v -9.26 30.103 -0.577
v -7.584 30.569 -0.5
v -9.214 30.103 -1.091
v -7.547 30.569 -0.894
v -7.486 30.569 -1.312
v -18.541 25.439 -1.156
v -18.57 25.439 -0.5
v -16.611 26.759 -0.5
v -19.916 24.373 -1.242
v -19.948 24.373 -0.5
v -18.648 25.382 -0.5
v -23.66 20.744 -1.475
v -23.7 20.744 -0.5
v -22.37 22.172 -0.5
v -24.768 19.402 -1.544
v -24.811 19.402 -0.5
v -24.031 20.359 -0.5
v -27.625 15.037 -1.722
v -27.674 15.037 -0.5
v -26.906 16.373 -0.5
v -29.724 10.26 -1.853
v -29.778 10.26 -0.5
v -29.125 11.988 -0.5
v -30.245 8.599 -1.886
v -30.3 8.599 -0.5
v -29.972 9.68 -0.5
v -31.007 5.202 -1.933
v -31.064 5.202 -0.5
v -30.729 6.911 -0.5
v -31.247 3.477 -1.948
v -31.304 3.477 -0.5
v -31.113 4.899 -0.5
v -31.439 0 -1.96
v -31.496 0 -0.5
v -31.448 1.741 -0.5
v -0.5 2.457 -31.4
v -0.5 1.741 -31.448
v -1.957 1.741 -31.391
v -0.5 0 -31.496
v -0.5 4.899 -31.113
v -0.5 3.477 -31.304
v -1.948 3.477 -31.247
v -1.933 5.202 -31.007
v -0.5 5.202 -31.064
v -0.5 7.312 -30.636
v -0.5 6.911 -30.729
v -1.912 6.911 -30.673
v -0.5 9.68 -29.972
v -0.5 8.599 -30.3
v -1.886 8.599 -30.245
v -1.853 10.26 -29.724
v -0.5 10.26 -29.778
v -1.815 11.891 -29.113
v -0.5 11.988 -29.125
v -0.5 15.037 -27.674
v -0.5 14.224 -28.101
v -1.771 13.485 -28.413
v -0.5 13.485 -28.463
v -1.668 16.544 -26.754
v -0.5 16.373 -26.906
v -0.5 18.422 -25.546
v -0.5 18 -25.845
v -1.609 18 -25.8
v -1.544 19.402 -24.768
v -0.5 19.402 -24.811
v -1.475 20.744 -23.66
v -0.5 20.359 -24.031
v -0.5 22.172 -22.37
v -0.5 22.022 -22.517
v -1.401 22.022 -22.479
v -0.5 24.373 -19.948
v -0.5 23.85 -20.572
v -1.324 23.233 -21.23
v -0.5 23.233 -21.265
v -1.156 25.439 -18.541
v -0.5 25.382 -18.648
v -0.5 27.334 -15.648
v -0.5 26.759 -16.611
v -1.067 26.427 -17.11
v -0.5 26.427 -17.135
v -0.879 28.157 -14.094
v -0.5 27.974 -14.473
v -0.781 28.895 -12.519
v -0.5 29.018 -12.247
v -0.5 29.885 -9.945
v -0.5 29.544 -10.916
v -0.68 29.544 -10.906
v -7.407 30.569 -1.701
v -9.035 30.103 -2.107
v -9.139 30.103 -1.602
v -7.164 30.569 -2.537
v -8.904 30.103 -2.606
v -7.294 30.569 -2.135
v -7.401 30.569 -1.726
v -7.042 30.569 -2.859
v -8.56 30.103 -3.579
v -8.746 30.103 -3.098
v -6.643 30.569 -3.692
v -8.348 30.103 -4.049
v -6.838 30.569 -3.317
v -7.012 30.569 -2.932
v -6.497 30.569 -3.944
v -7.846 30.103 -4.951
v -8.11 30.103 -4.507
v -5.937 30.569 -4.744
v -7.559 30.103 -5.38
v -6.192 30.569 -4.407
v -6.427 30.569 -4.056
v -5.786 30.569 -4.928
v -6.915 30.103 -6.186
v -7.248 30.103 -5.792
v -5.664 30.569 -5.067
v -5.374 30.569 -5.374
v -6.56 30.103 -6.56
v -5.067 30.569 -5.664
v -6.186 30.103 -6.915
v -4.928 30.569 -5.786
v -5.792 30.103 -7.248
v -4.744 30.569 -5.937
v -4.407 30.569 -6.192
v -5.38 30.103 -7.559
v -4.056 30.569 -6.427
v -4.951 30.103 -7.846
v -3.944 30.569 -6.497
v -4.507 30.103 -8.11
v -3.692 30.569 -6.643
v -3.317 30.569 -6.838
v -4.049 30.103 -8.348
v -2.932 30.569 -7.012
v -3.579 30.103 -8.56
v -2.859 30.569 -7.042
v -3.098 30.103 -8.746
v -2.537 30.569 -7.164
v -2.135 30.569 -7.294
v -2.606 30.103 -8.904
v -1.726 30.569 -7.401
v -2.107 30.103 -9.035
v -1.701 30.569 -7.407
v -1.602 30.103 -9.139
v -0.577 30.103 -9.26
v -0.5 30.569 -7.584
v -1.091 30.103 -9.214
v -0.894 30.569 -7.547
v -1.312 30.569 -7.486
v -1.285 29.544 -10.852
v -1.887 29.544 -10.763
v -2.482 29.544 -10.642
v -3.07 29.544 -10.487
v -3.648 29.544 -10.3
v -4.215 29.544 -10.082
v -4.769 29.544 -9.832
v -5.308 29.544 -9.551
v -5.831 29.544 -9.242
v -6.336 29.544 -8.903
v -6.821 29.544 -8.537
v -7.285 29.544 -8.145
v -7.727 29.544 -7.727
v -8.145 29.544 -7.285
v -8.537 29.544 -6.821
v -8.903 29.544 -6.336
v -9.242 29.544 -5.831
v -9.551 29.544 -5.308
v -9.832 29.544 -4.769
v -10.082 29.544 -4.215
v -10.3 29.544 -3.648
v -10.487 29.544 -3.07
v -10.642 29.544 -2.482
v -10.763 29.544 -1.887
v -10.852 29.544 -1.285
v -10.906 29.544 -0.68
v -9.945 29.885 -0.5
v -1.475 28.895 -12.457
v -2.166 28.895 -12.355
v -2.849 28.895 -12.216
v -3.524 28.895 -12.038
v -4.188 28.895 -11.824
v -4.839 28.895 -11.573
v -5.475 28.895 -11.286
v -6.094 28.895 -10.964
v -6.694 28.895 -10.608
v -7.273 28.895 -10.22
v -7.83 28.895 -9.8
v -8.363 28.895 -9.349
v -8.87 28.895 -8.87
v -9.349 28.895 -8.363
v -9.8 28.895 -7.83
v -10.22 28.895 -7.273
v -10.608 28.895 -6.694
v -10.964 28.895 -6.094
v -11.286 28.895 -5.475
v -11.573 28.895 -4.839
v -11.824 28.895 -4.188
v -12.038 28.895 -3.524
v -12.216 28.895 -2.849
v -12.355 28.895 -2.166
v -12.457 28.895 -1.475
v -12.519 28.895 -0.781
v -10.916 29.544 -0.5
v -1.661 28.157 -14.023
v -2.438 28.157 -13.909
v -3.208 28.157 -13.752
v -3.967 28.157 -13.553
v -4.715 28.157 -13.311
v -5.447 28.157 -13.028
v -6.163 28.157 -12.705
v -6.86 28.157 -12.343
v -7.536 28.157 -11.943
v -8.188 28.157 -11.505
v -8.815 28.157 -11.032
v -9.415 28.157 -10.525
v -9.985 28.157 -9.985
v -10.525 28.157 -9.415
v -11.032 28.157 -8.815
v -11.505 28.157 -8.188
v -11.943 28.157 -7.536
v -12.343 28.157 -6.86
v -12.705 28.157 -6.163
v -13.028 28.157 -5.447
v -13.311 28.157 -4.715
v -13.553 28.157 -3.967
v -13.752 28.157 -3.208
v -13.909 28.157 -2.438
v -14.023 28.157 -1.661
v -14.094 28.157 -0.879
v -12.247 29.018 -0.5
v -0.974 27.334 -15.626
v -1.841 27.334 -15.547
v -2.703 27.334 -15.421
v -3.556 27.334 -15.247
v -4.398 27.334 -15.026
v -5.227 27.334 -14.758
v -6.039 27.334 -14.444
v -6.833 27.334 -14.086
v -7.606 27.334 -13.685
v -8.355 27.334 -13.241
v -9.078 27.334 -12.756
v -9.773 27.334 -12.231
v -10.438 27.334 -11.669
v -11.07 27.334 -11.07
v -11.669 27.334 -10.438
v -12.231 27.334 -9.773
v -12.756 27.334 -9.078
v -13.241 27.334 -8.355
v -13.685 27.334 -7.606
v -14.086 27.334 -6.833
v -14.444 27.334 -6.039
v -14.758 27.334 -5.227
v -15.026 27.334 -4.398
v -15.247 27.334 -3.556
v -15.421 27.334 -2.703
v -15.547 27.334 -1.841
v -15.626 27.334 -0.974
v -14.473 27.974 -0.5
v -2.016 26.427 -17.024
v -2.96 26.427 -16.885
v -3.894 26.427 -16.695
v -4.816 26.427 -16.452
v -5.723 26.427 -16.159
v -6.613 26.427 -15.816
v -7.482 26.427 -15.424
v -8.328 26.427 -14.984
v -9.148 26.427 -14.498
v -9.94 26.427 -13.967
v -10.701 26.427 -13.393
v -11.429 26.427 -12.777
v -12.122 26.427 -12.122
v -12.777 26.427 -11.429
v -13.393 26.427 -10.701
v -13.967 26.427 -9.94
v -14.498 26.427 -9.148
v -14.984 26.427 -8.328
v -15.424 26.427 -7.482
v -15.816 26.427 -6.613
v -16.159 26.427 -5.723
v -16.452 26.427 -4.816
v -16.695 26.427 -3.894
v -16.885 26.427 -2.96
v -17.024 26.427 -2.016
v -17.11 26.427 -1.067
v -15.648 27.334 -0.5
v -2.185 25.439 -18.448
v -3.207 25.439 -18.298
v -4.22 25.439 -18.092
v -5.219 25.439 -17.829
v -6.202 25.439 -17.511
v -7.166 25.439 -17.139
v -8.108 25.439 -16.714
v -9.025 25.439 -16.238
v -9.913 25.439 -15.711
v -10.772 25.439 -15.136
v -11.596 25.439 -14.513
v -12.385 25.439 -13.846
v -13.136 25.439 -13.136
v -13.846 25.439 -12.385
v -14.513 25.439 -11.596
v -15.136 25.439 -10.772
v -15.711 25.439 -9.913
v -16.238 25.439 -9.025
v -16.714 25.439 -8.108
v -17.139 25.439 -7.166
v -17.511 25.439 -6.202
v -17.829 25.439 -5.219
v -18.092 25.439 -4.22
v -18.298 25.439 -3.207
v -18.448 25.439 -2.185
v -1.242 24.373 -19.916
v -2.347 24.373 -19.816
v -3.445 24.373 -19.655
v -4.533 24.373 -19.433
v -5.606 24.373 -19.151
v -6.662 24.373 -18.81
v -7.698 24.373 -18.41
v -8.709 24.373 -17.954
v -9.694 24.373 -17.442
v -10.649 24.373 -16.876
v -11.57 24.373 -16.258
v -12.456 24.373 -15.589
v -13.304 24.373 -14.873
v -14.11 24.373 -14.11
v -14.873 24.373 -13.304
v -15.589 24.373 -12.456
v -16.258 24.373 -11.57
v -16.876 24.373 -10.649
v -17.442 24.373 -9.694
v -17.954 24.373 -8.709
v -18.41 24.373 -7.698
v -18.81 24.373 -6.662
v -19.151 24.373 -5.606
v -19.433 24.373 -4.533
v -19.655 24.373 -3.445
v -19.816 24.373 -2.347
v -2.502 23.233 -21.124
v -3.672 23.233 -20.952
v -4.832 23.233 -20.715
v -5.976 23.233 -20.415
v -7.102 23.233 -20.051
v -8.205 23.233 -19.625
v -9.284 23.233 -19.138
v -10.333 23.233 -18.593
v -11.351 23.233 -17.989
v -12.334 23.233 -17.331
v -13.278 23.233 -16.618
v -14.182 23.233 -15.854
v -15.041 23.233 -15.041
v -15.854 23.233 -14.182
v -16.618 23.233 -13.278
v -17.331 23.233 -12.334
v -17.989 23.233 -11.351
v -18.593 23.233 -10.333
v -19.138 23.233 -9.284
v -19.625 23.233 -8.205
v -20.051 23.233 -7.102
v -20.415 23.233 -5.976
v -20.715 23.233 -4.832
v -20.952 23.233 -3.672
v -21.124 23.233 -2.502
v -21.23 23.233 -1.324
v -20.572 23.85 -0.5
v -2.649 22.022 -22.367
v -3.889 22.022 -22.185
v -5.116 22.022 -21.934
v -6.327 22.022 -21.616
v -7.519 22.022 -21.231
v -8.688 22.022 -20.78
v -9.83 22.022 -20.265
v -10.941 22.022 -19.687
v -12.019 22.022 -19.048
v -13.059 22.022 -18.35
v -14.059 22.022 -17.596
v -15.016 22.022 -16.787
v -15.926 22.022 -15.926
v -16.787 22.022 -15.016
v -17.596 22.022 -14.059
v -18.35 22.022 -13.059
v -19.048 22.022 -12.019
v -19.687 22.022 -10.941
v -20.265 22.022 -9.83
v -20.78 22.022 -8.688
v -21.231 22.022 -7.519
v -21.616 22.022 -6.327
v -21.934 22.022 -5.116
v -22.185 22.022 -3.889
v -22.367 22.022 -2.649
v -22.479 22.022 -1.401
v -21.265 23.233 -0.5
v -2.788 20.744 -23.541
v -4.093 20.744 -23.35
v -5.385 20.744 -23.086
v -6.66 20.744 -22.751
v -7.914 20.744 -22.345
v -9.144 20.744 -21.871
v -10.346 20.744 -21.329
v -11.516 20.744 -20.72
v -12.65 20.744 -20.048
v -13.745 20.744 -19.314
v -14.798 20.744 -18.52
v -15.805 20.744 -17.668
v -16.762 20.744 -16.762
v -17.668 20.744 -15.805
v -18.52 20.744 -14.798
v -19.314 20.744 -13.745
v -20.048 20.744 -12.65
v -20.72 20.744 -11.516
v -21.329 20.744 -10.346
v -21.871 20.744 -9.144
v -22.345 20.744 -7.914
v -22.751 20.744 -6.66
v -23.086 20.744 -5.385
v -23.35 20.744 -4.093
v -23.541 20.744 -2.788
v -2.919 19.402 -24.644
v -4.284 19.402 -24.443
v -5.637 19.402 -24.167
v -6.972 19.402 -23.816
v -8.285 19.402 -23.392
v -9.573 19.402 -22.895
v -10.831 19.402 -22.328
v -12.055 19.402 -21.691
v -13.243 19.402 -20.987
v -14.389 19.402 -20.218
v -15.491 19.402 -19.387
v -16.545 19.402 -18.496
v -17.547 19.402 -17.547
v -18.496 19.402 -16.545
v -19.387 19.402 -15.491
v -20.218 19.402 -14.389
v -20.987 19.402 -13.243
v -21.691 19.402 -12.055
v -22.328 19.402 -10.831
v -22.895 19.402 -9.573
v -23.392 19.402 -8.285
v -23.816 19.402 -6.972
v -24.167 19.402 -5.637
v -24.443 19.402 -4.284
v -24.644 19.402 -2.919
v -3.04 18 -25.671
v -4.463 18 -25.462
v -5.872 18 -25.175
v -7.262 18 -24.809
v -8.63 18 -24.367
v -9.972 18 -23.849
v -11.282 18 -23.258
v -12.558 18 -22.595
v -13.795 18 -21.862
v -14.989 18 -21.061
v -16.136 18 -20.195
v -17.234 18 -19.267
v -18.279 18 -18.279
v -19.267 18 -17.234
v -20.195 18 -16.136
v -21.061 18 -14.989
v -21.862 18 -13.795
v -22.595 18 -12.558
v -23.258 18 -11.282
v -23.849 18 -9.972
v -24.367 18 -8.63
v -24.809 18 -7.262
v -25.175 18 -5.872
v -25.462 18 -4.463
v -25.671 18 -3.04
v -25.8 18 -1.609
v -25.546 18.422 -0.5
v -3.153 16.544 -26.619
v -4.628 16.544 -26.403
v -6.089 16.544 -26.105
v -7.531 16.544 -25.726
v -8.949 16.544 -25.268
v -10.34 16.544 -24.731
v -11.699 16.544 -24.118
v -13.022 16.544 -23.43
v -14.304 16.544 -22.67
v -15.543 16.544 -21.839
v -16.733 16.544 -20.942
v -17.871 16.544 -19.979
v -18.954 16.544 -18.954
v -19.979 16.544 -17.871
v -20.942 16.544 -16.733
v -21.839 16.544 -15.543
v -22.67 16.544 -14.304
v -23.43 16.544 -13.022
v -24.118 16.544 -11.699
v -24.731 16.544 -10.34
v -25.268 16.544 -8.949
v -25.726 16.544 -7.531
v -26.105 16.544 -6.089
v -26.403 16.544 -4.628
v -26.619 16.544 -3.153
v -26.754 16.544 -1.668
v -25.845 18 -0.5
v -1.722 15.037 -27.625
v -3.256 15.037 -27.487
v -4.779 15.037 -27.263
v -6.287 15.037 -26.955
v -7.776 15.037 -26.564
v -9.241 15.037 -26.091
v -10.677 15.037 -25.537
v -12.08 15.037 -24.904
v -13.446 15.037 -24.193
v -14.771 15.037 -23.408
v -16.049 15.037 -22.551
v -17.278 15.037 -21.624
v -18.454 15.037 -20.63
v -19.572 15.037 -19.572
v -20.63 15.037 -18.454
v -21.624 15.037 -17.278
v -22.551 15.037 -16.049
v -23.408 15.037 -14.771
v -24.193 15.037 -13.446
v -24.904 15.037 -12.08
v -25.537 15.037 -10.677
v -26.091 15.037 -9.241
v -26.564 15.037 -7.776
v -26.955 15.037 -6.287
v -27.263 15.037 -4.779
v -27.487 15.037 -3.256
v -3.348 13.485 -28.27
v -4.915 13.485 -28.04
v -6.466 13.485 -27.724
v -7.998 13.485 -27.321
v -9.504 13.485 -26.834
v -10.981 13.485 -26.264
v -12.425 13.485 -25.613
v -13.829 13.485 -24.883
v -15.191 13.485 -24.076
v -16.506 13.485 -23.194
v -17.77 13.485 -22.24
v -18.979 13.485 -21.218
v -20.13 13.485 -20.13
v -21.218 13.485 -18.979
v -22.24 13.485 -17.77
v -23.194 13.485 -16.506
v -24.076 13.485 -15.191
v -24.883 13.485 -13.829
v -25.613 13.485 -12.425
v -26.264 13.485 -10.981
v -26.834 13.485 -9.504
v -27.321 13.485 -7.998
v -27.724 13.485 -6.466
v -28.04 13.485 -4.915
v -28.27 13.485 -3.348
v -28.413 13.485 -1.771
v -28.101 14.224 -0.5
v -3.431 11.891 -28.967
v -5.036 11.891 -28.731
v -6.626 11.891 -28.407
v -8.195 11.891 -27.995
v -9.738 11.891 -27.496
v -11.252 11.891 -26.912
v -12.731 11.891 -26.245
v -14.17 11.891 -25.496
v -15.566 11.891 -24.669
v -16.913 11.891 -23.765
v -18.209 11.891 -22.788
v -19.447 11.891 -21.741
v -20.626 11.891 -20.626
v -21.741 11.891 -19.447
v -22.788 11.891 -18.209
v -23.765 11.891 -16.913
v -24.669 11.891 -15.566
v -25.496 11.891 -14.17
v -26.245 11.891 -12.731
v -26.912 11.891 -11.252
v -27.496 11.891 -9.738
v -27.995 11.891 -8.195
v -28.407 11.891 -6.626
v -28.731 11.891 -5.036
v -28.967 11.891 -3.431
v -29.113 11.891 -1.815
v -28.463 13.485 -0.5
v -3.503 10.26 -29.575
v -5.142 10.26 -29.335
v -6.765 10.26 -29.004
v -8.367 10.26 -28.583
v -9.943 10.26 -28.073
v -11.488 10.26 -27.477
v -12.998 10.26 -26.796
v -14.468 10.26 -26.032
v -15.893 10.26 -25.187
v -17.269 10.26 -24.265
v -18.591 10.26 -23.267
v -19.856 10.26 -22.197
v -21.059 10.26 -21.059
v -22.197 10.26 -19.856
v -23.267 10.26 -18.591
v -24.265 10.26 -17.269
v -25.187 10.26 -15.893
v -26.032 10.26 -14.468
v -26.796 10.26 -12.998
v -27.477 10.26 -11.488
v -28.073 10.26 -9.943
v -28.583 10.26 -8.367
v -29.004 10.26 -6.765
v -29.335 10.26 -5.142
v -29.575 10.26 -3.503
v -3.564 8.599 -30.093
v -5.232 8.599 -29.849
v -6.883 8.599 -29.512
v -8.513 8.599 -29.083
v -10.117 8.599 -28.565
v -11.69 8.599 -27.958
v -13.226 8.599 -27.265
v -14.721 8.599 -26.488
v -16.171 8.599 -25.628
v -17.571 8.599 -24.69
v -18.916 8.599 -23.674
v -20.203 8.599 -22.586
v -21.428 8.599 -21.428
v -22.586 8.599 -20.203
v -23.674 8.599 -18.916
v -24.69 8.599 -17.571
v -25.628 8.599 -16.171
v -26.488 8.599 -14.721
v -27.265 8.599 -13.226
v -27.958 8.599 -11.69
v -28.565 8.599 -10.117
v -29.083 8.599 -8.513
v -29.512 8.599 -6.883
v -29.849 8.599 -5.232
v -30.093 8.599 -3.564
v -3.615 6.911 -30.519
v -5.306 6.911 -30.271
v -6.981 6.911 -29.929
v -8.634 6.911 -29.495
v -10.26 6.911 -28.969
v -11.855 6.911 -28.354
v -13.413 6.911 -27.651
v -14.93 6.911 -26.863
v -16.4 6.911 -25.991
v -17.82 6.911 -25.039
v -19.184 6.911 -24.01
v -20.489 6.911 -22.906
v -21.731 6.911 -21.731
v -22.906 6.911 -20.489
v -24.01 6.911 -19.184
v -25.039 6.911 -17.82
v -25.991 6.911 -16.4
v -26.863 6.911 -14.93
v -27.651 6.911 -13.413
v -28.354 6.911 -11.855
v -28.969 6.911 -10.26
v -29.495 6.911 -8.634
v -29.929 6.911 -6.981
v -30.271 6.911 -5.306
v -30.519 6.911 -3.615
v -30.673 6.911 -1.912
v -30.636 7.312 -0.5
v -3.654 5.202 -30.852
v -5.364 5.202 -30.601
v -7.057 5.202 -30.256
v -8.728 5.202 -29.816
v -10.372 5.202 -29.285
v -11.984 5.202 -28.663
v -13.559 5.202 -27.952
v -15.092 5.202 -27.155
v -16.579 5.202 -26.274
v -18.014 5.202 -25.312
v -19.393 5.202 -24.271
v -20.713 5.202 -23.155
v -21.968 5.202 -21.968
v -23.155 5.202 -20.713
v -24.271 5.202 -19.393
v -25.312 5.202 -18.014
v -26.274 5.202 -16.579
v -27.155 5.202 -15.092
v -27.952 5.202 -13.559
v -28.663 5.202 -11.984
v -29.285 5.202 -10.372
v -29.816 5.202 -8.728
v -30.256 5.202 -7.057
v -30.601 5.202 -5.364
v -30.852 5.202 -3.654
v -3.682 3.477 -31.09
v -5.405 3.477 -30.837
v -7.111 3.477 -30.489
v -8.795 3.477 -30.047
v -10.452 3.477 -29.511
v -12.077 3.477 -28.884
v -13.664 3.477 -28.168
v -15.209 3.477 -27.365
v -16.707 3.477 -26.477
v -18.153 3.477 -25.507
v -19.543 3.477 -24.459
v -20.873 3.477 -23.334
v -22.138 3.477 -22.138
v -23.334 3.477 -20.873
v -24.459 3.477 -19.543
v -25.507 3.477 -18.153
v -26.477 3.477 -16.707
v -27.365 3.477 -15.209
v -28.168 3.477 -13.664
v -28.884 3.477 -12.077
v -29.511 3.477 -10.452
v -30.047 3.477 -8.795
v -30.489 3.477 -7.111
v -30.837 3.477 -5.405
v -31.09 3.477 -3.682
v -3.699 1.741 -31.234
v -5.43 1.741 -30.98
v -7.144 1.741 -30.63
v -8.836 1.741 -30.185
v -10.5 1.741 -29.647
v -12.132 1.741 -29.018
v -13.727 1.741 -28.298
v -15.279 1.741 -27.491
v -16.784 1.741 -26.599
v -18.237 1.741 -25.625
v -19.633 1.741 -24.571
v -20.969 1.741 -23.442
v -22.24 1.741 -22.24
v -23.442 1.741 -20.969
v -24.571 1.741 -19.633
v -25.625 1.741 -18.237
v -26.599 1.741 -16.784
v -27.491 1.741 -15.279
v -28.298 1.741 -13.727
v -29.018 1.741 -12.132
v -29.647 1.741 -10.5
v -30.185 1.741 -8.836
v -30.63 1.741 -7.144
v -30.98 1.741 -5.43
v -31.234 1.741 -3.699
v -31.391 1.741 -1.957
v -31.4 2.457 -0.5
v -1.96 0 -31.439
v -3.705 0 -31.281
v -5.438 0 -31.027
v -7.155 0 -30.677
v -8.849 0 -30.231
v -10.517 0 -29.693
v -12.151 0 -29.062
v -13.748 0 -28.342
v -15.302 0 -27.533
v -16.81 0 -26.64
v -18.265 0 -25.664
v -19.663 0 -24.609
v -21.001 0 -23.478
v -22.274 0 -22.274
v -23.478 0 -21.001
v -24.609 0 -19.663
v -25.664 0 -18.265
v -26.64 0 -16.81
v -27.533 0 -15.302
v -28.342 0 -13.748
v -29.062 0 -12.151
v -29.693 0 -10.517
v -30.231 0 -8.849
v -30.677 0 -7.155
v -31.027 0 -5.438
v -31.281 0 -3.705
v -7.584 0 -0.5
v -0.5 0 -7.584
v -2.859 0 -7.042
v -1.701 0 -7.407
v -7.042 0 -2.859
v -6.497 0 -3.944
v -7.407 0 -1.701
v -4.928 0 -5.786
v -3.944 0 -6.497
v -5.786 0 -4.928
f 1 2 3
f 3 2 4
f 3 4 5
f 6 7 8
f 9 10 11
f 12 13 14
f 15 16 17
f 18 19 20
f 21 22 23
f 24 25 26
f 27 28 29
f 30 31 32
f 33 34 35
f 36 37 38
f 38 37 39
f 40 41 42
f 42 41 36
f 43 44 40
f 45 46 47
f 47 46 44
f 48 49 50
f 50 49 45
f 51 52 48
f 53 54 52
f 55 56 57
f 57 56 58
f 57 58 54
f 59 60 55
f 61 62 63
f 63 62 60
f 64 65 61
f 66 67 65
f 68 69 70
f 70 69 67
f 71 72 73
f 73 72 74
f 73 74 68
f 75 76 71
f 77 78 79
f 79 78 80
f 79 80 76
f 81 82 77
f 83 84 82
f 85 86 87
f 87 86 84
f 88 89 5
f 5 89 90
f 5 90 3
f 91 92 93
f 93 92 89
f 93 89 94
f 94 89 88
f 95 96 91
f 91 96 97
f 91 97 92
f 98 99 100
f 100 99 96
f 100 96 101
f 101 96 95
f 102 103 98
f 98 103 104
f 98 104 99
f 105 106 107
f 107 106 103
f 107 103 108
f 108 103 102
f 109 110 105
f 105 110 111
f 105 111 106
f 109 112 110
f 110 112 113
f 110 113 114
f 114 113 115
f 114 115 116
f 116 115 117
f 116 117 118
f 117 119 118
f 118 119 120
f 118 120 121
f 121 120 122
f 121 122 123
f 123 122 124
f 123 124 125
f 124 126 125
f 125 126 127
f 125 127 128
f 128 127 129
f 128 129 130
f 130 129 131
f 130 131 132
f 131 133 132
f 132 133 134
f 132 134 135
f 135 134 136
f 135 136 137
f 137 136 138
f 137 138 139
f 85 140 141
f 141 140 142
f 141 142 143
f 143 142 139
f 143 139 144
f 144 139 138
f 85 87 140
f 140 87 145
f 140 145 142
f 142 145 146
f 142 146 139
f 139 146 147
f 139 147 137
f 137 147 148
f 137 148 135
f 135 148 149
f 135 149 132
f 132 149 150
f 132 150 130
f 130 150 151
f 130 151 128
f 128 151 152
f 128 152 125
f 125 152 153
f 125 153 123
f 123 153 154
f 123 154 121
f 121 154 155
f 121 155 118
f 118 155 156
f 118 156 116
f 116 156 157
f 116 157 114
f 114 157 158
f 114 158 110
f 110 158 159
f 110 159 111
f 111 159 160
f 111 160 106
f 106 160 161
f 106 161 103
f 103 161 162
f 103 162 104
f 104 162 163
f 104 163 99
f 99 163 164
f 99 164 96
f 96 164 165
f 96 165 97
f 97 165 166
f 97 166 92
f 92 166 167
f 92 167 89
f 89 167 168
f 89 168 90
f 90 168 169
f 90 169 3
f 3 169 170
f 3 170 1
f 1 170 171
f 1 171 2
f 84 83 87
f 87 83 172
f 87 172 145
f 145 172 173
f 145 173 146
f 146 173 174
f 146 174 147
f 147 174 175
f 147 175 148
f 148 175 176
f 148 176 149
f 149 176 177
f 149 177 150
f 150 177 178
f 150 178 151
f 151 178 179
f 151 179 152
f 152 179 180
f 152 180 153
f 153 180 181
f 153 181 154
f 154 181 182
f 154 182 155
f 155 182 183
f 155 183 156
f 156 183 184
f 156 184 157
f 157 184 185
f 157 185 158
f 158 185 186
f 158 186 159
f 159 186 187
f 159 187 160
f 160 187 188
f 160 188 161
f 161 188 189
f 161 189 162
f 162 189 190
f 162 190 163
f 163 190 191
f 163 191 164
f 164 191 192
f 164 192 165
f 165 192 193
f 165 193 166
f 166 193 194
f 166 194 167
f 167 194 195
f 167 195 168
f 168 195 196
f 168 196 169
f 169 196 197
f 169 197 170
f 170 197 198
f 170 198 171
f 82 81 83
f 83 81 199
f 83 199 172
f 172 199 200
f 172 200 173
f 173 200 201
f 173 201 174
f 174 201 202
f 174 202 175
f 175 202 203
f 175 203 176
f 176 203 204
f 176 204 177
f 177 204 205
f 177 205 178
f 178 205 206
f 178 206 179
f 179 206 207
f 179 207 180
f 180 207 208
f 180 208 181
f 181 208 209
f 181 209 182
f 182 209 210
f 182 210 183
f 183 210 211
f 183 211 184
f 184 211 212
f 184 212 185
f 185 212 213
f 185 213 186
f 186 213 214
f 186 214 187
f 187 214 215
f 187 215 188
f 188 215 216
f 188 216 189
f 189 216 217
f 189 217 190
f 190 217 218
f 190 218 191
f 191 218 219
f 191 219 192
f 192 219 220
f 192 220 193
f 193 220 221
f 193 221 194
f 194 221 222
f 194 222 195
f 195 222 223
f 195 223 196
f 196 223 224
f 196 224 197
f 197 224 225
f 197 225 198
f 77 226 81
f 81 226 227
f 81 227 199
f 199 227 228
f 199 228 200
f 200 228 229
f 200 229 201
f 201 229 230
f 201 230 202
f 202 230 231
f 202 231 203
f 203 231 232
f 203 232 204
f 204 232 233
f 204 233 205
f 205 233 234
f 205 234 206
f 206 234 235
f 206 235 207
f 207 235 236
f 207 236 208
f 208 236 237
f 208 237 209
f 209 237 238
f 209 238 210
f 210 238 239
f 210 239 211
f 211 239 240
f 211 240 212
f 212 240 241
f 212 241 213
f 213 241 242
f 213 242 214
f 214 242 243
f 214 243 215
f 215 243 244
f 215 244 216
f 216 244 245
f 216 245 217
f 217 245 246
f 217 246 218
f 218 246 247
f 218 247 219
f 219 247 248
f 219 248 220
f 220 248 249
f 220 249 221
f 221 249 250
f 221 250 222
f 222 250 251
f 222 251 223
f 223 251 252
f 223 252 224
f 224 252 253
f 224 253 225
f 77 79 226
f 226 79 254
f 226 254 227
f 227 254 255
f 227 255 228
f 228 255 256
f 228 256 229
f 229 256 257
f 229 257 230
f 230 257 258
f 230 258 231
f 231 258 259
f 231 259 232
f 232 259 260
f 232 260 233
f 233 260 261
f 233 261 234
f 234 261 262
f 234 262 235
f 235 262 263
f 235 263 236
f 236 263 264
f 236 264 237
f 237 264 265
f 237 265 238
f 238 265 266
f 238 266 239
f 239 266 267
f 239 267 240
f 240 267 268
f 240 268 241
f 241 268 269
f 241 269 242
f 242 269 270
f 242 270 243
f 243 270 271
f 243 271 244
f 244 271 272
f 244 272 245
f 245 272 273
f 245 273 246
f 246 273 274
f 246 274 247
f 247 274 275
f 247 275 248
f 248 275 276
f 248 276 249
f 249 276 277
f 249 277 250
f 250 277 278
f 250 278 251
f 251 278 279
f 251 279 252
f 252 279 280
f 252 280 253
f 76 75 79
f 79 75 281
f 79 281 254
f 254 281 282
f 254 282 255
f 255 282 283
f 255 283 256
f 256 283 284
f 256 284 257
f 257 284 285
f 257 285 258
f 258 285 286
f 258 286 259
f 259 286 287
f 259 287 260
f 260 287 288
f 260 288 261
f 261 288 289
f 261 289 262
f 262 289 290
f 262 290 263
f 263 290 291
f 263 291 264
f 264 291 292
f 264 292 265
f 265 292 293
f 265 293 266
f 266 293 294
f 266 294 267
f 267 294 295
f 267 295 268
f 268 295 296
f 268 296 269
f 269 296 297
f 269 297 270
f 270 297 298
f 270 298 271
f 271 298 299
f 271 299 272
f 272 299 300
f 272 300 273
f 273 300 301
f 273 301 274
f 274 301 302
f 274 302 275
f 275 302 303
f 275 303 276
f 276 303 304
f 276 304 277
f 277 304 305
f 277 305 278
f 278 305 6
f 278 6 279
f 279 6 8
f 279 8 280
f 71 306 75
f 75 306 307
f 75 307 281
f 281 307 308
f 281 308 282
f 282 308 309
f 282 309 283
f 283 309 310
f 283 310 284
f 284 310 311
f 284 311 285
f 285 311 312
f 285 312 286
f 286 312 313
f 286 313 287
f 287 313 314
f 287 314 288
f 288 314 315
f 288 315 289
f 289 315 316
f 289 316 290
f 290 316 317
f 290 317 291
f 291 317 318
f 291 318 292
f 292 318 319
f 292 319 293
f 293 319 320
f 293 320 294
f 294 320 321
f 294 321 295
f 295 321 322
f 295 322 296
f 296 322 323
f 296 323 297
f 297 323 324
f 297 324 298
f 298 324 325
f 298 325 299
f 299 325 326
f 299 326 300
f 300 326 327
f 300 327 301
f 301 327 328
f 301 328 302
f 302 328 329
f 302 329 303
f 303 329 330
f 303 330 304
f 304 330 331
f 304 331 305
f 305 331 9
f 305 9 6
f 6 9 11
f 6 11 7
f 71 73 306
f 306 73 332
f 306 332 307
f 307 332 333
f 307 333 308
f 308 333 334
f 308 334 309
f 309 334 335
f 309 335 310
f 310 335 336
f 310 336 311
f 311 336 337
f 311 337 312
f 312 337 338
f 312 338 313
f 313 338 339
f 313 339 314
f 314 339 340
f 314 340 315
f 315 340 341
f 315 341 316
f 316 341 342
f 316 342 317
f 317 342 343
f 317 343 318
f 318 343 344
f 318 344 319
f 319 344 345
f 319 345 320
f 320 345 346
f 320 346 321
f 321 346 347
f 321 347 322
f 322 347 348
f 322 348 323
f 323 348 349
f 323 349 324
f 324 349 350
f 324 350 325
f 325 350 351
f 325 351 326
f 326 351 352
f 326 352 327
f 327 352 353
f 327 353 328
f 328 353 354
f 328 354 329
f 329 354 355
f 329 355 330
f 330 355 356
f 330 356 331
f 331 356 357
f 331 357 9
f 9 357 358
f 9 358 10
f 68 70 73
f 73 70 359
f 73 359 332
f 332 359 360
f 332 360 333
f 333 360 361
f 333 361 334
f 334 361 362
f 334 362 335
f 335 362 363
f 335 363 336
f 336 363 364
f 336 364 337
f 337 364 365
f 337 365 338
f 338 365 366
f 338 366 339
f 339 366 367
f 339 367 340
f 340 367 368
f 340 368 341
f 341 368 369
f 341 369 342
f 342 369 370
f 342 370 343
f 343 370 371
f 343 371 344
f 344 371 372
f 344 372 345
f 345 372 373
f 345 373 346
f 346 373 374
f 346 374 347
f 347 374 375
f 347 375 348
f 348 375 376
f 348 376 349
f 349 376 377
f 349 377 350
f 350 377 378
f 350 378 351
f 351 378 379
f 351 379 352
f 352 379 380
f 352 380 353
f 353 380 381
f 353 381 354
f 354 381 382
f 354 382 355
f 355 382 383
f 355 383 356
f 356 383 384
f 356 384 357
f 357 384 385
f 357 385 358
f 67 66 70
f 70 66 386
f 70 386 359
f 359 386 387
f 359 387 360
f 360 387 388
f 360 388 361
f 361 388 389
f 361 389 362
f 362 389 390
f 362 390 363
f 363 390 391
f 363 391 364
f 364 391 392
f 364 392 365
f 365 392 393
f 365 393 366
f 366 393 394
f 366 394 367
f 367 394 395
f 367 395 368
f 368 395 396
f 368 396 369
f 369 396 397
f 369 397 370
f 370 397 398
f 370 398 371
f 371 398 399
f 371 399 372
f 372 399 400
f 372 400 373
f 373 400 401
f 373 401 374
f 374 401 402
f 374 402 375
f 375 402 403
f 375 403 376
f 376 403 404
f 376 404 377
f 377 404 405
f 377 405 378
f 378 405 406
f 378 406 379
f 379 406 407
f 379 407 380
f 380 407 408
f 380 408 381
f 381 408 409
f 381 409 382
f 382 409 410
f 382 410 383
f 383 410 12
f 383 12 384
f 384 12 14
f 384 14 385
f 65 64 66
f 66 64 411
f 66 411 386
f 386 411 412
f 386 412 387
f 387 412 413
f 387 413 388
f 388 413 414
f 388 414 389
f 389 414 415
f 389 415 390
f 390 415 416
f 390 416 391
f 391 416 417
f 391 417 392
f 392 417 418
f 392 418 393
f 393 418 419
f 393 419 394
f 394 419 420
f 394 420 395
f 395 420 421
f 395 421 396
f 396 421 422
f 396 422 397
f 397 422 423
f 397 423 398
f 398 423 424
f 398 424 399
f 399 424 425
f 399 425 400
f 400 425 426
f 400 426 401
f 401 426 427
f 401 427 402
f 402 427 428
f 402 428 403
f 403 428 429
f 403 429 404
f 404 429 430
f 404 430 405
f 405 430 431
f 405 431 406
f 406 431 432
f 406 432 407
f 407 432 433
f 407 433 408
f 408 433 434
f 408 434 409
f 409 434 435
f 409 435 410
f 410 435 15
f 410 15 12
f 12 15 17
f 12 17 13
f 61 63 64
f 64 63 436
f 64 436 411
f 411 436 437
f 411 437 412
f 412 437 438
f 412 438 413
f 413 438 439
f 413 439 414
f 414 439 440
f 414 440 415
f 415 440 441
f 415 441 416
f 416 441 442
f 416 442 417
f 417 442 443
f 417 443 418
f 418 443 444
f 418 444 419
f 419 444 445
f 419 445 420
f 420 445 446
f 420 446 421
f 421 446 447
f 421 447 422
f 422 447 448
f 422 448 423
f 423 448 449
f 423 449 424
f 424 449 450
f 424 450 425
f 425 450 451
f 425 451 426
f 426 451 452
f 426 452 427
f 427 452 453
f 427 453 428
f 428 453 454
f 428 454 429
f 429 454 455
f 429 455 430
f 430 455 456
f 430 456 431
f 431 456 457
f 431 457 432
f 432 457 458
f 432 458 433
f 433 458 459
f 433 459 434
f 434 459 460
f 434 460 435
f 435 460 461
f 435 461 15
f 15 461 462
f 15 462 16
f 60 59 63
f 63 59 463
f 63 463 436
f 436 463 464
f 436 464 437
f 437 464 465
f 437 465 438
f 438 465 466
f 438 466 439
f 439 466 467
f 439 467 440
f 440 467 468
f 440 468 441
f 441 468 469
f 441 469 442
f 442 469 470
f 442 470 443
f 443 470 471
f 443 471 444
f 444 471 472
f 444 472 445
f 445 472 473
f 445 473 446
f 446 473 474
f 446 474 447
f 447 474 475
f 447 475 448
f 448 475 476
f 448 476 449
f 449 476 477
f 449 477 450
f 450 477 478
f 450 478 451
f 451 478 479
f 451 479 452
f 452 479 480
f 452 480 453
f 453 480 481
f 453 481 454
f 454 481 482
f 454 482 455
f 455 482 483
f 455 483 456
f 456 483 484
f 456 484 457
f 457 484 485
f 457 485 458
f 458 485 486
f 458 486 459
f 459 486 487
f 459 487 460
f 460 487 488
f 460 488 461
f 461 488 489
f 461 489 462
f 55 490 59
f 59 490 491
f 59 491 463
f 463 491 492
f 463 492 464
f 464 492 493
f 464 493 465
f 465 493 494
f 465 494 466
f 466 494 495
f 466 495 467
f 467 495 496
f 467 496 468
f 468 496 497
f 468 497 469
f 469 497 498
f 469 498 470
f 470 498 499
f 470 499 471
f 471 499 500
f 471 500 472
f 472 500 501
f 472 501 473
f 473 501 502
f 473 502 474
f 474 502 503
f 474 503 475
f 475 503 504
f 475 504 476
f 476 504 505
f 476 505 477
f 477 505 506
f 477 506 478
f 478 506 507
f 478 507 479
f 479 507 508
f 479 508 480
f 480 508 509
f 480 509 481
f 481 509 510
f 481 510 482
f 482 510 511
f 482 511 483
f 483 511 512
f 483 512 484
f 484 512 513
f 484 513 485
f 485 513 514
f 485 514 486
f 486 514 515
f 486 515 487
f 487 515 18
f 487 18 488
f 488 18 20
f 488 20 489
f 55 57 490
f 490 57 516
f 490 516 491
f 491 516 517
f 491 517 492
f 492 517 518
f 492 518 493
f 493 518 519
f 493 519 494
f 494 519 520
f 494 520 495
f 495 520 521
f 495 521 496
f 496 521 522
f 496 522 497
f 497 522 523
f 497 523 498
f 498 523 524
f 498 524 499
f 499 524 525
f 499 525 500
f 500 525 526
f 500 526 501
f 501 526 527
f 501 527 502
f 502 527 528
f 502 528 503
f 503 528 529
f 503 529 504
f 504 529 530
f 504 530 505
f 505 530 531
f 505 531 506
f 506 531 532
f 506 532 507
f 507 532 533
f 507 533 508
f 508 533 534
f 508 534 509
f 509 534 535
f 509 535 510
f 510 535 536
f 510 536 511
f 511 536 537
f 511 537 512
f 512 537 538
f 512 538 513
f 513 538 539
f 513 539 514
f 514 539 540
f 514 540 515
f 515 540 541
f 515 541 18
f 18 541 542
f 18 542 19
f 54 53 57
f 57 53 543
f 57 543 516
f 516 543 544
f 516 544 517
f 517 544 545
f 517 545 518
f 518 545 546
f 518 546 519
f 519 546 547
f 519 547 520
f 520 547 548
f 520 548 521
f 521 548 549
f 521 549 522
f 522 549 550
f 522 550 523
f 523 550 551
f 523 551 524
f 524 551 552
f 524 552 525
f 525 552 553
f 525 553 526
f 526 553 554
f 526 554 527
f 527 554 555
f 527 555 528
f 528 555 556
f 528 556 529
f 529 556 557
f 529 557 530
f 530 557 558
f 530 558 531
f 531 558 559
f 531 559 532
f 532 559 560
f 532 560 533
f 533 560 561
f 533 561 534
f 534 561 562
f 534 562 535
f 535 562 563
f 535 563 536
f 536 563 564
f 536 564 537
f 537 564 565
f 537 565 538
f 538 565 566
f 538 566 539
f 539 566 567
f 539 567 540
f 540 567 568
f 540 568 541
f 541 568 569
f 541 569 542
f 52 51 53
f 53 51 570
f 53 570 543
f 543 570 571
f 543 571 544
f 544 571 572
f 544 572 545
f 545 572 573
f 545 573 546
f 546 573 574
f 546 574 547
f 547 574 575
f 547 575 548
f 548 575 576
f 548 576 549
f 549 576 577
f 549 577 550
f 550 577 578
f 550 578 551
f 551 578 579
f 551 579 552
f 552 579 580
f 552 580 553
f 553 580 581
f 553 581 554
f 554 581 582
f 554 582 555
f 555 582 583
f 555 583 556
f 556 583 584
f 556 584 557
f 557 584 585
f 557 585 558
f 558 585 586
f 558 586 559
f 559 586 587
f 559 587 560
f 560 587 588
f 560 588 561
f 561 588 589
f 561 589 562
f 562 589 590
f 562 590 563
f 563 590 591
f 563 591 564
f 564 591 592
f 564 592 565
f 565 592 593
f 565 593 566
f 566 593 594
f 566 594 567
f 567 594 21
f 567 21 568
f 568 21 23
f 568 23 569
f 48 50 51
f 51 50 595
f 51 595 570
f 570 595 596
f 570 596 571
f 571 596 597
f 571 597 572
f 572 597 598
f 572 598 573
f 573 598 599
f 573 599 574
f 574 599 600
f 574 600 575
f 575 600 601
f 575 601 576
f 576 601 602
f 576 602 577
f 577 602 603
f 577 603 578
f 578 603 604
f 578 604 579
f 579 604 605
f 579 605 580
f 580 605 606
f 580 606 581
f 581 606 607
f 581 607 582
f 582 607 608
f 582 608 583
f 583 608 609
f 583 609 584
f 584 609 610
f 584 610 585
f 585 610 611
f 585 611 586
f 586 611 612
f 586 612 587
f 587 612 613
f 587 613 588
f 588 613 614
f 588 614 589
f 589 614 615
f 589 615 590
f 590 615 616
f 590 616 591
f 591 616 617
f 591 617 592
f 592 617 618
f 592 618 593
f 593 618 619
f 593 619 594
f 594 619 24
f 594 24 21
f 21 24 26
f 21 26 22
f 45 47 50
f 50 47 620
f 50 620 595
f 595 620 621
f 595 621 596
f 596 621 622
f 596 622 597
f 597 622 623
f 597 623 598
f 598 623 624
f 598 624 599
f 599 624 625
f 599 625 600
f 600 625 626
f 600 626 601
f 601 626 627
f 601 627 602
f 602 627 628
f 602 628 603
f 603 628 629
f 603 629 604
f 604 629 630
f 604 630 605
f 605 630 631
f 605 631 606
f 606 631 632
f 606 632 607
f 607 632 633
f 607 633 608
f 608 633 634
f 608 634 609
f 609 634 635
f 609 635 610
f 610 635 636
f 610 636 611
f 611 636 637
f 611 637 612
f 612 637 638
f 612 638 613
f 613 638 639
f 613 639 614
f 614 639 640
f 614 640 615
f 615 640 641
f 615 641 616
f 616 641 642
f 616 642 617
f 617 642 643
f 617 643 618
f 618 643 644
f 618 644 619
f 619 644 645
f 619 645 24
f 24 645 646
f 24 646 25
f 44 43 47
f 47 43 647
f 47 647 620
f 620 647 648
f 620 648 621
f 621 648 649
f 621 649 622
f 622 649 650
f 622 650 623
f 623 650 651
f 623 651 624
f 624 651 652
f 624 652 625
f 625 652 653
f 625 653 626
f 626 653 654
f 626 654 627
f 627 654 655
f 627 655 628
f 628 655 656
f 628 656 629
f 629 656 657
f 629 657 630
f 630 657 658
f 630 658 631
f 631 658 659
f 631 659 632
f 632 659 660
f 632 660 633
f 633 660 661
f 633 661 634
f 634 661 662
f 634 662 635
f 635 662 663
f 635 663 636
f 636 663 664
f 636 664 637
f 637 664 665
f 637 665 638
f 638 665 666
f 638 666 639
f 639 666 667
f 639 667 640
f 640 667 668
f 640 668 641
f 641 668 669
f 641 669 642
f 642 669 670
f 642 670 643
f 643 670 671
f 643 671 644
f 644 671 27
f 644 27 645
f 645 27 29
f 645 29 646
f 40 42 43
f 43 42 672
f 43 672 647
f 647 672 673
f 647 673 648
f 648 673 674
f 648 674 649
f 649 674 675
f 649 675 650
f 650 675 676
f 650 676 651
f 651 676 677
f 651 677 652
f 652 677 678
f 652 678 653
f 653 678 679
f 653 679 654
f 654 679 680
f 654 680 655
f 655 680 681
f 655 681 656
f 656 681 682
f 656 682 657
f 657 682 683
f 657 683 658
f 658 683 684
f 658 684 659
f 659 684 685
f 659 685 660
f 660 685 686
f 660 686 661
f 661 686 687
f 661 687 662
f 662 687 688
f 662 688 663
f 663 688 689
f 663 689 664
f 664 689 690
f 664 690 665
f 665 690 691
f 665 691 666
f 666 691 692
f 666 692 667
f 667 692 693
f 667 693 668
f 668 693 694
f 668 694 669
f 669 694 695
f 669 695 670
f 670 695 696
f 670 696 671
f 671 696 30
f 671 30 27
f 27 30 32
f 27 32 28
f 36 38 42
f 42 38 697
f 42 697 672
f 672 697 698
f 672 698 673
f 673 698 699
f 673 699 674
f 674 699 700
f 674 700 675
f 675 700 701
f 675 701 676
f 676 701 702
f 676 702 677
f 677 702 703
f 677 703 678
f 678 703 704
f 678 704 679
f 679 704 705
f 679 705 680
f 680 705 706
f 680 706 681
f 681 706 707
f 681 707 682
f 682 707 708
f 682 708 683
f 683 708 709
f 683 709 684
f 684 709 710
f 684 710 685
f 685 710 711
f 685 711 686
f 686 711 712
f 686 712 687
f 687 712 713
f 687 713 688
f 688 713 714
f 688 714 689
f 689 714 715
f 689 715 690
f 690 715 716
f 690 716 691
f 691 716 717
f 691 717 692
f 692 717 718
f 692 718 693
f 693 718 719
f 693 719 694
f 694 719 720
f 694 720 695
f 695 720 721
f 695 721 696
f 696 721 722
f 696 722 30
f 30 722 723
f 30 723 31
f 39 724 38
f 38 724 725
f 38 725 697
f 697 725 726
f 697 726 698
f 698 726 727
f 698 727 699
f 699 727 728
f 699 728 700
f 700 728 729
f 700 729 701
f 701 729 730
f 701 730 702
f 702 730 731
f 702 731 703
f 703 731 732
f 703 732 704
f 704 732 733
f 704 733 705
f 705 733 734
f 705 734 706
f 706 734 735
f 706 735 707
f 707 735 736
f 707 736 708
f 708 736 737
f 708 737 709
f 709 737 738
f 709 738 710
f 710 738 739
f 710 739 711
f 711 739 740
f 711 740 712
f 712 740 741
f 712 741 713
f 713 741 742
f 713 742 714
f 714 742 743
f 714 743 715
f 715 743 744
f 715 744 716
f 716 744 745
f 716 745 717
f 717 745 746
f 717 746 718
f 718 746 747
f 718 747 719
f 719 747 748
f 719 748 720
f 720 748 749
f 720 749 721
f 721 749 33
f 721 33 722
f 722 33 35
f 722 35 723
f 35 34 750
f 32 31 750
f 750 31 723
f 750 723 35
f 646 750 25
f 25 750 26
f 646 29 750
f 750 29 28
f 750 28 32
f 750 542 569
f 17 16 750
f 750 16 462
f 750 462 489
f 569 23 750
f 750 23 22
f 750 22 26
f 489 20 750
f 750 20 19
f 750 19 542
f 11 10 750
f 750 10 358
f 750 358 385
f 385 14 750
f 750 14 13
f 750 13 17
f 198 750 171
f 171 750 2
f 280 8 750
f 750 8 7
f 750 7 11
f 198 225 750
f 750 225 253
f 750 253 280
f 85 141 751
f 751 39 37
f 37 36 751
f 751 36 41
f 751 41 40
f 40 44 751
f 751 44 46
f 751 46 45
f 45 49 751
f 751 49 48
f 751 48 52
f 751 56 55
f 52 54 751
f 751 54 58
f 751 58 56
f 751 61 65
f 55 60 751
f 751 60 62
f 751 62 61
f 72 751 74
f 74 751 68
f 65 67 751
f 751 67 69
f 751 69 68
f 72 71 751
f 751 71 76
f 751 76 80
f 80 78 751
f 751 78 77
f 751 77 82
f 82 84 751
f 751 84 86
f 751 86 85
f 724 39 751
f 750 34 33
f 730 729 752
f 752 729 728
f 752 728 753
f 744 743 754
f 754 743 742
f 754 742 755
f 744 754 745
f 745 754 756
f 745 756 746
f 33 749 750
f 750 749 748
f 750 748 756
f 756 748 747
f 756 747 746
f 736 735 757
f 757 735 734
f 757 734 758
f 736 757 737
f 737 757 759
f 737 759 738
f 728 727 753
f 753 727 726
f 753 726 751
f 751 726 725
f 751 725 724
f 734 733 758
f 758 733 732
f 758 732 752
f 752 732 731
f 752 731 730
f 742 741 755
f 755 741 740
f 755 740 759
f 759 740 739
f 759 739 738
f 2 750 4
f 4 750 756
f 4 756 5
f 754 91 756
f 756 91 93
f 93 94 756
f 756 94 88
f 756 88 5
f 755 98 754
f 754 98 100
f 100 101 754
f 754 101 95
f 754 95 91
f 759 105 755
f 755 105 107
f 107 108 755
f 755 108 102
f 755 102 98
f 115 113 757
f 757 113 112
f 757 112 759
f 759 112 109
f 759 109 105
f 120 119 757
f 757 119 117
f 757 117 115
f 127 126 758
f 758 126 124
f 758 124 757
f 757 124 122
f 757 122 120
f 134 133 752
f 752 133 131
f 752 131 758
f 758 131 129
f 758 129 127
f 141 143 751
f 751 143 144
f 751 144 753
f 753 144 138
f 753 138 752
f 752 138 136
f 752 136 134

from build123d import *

# Parameters (mm, degrees)
CUT_EXTRUDE1_DEPTH      = 55.559600438
CUT_EXTRUDE1_DEPTH_BACK = 55.559600438
SKETCH3_W               = 31.496031496
SKETCH3_H               = 31.496031496
CUT_EXTRUDE2_DEPTH      = 55.263283798
SKETCH6_R               = 7.6
CUT_EXTRUDE3_DEPTH      = 55.550435379


with BuildPart() as part:
    # Sketch1 → Revolve1 (revolve)
    with BuildSketch(Plane.XY):
        with BuildLine():
            Line((0, 31.5), (0, -31.5))
            ThreePointArc((0, -31.5), (-31.5, 0), (0, 31.5))
        make_face()
    revolve(axis=Axis((0, 31.5, 0), (0, -1, 0)))

    # Sketch2 → Cut-Extrude1 (cut, two sides: drawn at the far end of the back side and taken through both)
    with BuildSketch(Plane(origin=(0, 0, 0), x_dir=(1, 0, 0), z_dir=(0, 1, 0)).offset(-CUT_EXTRUDE1_DEPTH_BACK)):
        with BuildLine():
            Line((-0.5, 31.496031496), (-0.5, 0.5))
            Line((-0.5, 0.5), (-31.496031496, 0.5))
            ThreePointArc((-31.496031496, 0.5), (22.273863607, -22.273863607), (-0.5, 31.496031496))
        make_face()
    extrude(amount=CUT_EXTRUDE1_DEPTH + CUT_EXTRUDE1_DEPTH_BACK, mode=Mode.SUBTRACT)

    # Sketch3 → Cut-Extrude2 (cut, through all)
    with BuildSketch(Plane(origin=(-0.5, 0, 0), x_dir=(0, 0, -1), z_dir=(1, 0, 0))):
        with Locations((15.748015748, -15.748015748)):
            Rectangle(SKETCH3_W, SKETCH3_H)
    extrude(amount=-CUT_EXTRUDE2_DEPTH, mode=Mode.SUBTRACT)

    # Sketch6 → Cut-Extrude3 (cut, through all)
    with BuildSketch(Plane.XZ):
        Circle(SKETCH6_R)
    extrude(amount=-CUT_EXTRUDE3_DEPTH, mode=Mode.SUBTRACT)


solid = part.part
